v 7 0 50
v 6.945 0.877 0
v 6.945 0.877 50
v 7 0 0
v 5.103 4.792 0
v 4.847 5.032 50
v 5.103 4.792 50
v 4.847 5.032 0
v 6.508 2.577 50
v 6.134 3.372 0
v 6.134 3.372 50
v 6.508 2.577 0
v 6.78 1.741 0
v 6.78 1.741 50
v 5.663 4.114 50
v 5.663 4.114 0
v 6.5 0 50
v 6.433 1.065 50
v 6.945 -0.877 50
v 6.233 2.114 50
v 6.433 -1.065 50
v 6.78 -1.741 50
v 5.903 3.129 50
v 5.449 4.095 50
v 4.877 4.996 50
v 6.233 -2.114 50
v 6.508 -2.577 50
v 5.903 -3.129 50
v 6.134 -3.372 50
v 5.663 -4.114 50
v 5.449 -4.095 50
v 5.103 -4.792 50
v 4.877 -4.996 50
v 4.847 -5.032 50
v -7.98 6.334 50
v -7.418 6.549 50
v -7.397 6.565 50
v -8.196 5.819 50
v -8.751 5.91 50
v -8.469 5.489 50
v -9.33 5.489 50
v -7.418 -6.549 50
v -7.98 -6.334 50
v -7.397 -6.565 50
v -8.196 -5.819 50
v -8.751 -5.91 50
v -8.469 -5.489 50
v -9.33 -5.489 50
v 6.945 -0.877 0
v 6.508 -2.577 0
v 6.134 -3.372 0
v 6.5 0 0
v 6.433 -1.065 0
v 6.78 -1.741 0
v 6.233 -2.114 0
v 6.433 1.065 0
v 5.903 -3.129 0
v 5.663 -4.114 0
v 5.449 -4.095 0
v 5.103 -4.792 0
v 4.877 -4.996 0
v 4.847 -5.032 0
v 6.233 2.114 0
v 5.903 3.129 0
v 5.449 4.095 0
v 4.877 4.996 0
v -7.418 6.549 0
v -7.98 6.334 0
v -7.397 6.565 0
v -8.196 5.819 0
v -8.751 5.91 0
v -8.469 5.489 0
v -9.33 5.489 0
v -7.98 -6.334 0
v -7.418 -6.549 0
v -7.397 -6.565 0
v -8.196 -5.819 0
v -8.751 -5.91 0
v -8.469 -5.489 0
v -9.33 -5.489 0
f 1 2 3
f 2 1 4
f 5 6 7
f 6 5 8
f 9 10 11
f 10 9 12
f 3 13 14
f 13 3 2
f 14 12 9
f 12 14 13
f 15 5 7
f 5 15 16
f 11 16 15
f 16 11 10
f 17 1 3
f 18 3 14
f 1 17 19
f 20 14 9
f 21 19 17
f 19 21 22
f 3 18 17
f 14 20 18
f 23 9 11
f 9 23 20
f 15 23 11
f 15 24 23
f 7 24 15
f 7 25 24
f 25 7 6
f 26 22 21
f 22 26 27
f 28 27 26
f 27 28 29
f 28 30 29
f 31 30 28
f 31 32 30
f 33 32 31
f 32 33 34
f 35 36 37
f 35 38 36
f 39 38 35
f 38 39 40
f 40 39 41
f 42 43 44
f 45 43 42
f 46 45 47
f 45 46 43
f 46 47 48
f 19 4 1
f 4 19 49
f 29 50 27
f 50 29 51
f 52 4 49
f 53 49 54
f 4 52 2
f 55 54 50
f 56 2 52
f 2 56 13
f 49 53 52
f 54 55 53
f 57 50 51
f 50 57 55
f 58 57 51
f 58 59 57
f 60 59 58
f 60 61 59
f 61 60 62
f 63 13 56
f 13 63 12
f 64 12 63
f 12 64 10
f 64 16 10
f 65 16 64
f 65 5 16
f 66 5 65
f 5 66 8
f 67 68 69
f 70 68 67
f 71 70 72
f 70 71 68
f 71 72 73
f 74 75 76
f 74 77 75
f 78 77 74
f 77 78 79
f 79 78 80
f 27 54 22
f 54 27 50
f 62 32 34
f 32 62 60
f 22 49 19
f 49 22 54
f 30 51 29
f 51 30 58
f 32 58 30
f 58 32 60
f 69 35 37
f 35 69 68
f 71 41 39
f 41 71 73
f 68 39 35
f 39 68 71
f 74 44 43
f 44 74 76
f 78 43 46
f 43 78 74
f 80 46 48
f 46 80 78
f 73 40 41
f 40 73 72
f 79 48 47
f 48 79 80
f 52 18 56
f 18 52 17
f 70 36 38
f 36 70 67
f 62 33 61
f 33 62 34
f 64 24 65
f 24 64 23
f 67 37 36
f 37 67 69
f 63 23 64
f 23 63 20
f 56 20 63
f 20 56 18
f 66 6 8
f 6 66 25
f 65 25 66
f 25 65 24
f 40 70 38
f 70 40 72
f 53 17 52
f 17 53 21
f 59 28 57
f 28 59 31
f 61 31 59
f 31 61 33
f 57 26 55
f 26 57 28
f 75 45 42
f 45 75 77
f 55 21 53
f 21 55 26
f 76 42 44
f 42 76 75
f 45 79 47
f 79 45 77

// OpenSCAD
$fn = 50;


difference() {
	union() {
		cylinder(h = 50, r = 7.0000000000);
		translate(v = [-5.0000000000, 0, 0]) {
			cylinder(h = 50, r = 7.0000000000);
		}
	}
	union() {
		cylinder(h = 50, r = 3.2500000000);
		cylinder(h = 50, r = 1.8000000000);
		cylinder(h = 50, r = 1.8000000000);
		cylinder(h = 50, r = 1.8000000000);
		translate(v = [-9.5000000000, 0, 0]) {
			hull() {
				translate(v = [-3.7500000000, 0.0000000000, 0]) {
					cylinder(h = 50, r = 5.5000000000);
				}
				translate(v = [3.7500000000, 0.0000000000, 0]) {
					cylinder(h = 50, r = 5.5000000000);
				}
				translate(v = [-3.7500000000, -0.0000000000, 0]) {
					cylinder(h = 50, r = 5.5000000000);
				}
				translate(v = [3.7500000000, -0.0000000000, 0]) {
					cylinder(h = 50, r = 5.5000000000);
				}
			}
		}
		translate(v = [-2.0000000000, 0, 0.0000000000]) {
			cylinder(h = 50, r = 8.5000000000);
		}
	}
}
